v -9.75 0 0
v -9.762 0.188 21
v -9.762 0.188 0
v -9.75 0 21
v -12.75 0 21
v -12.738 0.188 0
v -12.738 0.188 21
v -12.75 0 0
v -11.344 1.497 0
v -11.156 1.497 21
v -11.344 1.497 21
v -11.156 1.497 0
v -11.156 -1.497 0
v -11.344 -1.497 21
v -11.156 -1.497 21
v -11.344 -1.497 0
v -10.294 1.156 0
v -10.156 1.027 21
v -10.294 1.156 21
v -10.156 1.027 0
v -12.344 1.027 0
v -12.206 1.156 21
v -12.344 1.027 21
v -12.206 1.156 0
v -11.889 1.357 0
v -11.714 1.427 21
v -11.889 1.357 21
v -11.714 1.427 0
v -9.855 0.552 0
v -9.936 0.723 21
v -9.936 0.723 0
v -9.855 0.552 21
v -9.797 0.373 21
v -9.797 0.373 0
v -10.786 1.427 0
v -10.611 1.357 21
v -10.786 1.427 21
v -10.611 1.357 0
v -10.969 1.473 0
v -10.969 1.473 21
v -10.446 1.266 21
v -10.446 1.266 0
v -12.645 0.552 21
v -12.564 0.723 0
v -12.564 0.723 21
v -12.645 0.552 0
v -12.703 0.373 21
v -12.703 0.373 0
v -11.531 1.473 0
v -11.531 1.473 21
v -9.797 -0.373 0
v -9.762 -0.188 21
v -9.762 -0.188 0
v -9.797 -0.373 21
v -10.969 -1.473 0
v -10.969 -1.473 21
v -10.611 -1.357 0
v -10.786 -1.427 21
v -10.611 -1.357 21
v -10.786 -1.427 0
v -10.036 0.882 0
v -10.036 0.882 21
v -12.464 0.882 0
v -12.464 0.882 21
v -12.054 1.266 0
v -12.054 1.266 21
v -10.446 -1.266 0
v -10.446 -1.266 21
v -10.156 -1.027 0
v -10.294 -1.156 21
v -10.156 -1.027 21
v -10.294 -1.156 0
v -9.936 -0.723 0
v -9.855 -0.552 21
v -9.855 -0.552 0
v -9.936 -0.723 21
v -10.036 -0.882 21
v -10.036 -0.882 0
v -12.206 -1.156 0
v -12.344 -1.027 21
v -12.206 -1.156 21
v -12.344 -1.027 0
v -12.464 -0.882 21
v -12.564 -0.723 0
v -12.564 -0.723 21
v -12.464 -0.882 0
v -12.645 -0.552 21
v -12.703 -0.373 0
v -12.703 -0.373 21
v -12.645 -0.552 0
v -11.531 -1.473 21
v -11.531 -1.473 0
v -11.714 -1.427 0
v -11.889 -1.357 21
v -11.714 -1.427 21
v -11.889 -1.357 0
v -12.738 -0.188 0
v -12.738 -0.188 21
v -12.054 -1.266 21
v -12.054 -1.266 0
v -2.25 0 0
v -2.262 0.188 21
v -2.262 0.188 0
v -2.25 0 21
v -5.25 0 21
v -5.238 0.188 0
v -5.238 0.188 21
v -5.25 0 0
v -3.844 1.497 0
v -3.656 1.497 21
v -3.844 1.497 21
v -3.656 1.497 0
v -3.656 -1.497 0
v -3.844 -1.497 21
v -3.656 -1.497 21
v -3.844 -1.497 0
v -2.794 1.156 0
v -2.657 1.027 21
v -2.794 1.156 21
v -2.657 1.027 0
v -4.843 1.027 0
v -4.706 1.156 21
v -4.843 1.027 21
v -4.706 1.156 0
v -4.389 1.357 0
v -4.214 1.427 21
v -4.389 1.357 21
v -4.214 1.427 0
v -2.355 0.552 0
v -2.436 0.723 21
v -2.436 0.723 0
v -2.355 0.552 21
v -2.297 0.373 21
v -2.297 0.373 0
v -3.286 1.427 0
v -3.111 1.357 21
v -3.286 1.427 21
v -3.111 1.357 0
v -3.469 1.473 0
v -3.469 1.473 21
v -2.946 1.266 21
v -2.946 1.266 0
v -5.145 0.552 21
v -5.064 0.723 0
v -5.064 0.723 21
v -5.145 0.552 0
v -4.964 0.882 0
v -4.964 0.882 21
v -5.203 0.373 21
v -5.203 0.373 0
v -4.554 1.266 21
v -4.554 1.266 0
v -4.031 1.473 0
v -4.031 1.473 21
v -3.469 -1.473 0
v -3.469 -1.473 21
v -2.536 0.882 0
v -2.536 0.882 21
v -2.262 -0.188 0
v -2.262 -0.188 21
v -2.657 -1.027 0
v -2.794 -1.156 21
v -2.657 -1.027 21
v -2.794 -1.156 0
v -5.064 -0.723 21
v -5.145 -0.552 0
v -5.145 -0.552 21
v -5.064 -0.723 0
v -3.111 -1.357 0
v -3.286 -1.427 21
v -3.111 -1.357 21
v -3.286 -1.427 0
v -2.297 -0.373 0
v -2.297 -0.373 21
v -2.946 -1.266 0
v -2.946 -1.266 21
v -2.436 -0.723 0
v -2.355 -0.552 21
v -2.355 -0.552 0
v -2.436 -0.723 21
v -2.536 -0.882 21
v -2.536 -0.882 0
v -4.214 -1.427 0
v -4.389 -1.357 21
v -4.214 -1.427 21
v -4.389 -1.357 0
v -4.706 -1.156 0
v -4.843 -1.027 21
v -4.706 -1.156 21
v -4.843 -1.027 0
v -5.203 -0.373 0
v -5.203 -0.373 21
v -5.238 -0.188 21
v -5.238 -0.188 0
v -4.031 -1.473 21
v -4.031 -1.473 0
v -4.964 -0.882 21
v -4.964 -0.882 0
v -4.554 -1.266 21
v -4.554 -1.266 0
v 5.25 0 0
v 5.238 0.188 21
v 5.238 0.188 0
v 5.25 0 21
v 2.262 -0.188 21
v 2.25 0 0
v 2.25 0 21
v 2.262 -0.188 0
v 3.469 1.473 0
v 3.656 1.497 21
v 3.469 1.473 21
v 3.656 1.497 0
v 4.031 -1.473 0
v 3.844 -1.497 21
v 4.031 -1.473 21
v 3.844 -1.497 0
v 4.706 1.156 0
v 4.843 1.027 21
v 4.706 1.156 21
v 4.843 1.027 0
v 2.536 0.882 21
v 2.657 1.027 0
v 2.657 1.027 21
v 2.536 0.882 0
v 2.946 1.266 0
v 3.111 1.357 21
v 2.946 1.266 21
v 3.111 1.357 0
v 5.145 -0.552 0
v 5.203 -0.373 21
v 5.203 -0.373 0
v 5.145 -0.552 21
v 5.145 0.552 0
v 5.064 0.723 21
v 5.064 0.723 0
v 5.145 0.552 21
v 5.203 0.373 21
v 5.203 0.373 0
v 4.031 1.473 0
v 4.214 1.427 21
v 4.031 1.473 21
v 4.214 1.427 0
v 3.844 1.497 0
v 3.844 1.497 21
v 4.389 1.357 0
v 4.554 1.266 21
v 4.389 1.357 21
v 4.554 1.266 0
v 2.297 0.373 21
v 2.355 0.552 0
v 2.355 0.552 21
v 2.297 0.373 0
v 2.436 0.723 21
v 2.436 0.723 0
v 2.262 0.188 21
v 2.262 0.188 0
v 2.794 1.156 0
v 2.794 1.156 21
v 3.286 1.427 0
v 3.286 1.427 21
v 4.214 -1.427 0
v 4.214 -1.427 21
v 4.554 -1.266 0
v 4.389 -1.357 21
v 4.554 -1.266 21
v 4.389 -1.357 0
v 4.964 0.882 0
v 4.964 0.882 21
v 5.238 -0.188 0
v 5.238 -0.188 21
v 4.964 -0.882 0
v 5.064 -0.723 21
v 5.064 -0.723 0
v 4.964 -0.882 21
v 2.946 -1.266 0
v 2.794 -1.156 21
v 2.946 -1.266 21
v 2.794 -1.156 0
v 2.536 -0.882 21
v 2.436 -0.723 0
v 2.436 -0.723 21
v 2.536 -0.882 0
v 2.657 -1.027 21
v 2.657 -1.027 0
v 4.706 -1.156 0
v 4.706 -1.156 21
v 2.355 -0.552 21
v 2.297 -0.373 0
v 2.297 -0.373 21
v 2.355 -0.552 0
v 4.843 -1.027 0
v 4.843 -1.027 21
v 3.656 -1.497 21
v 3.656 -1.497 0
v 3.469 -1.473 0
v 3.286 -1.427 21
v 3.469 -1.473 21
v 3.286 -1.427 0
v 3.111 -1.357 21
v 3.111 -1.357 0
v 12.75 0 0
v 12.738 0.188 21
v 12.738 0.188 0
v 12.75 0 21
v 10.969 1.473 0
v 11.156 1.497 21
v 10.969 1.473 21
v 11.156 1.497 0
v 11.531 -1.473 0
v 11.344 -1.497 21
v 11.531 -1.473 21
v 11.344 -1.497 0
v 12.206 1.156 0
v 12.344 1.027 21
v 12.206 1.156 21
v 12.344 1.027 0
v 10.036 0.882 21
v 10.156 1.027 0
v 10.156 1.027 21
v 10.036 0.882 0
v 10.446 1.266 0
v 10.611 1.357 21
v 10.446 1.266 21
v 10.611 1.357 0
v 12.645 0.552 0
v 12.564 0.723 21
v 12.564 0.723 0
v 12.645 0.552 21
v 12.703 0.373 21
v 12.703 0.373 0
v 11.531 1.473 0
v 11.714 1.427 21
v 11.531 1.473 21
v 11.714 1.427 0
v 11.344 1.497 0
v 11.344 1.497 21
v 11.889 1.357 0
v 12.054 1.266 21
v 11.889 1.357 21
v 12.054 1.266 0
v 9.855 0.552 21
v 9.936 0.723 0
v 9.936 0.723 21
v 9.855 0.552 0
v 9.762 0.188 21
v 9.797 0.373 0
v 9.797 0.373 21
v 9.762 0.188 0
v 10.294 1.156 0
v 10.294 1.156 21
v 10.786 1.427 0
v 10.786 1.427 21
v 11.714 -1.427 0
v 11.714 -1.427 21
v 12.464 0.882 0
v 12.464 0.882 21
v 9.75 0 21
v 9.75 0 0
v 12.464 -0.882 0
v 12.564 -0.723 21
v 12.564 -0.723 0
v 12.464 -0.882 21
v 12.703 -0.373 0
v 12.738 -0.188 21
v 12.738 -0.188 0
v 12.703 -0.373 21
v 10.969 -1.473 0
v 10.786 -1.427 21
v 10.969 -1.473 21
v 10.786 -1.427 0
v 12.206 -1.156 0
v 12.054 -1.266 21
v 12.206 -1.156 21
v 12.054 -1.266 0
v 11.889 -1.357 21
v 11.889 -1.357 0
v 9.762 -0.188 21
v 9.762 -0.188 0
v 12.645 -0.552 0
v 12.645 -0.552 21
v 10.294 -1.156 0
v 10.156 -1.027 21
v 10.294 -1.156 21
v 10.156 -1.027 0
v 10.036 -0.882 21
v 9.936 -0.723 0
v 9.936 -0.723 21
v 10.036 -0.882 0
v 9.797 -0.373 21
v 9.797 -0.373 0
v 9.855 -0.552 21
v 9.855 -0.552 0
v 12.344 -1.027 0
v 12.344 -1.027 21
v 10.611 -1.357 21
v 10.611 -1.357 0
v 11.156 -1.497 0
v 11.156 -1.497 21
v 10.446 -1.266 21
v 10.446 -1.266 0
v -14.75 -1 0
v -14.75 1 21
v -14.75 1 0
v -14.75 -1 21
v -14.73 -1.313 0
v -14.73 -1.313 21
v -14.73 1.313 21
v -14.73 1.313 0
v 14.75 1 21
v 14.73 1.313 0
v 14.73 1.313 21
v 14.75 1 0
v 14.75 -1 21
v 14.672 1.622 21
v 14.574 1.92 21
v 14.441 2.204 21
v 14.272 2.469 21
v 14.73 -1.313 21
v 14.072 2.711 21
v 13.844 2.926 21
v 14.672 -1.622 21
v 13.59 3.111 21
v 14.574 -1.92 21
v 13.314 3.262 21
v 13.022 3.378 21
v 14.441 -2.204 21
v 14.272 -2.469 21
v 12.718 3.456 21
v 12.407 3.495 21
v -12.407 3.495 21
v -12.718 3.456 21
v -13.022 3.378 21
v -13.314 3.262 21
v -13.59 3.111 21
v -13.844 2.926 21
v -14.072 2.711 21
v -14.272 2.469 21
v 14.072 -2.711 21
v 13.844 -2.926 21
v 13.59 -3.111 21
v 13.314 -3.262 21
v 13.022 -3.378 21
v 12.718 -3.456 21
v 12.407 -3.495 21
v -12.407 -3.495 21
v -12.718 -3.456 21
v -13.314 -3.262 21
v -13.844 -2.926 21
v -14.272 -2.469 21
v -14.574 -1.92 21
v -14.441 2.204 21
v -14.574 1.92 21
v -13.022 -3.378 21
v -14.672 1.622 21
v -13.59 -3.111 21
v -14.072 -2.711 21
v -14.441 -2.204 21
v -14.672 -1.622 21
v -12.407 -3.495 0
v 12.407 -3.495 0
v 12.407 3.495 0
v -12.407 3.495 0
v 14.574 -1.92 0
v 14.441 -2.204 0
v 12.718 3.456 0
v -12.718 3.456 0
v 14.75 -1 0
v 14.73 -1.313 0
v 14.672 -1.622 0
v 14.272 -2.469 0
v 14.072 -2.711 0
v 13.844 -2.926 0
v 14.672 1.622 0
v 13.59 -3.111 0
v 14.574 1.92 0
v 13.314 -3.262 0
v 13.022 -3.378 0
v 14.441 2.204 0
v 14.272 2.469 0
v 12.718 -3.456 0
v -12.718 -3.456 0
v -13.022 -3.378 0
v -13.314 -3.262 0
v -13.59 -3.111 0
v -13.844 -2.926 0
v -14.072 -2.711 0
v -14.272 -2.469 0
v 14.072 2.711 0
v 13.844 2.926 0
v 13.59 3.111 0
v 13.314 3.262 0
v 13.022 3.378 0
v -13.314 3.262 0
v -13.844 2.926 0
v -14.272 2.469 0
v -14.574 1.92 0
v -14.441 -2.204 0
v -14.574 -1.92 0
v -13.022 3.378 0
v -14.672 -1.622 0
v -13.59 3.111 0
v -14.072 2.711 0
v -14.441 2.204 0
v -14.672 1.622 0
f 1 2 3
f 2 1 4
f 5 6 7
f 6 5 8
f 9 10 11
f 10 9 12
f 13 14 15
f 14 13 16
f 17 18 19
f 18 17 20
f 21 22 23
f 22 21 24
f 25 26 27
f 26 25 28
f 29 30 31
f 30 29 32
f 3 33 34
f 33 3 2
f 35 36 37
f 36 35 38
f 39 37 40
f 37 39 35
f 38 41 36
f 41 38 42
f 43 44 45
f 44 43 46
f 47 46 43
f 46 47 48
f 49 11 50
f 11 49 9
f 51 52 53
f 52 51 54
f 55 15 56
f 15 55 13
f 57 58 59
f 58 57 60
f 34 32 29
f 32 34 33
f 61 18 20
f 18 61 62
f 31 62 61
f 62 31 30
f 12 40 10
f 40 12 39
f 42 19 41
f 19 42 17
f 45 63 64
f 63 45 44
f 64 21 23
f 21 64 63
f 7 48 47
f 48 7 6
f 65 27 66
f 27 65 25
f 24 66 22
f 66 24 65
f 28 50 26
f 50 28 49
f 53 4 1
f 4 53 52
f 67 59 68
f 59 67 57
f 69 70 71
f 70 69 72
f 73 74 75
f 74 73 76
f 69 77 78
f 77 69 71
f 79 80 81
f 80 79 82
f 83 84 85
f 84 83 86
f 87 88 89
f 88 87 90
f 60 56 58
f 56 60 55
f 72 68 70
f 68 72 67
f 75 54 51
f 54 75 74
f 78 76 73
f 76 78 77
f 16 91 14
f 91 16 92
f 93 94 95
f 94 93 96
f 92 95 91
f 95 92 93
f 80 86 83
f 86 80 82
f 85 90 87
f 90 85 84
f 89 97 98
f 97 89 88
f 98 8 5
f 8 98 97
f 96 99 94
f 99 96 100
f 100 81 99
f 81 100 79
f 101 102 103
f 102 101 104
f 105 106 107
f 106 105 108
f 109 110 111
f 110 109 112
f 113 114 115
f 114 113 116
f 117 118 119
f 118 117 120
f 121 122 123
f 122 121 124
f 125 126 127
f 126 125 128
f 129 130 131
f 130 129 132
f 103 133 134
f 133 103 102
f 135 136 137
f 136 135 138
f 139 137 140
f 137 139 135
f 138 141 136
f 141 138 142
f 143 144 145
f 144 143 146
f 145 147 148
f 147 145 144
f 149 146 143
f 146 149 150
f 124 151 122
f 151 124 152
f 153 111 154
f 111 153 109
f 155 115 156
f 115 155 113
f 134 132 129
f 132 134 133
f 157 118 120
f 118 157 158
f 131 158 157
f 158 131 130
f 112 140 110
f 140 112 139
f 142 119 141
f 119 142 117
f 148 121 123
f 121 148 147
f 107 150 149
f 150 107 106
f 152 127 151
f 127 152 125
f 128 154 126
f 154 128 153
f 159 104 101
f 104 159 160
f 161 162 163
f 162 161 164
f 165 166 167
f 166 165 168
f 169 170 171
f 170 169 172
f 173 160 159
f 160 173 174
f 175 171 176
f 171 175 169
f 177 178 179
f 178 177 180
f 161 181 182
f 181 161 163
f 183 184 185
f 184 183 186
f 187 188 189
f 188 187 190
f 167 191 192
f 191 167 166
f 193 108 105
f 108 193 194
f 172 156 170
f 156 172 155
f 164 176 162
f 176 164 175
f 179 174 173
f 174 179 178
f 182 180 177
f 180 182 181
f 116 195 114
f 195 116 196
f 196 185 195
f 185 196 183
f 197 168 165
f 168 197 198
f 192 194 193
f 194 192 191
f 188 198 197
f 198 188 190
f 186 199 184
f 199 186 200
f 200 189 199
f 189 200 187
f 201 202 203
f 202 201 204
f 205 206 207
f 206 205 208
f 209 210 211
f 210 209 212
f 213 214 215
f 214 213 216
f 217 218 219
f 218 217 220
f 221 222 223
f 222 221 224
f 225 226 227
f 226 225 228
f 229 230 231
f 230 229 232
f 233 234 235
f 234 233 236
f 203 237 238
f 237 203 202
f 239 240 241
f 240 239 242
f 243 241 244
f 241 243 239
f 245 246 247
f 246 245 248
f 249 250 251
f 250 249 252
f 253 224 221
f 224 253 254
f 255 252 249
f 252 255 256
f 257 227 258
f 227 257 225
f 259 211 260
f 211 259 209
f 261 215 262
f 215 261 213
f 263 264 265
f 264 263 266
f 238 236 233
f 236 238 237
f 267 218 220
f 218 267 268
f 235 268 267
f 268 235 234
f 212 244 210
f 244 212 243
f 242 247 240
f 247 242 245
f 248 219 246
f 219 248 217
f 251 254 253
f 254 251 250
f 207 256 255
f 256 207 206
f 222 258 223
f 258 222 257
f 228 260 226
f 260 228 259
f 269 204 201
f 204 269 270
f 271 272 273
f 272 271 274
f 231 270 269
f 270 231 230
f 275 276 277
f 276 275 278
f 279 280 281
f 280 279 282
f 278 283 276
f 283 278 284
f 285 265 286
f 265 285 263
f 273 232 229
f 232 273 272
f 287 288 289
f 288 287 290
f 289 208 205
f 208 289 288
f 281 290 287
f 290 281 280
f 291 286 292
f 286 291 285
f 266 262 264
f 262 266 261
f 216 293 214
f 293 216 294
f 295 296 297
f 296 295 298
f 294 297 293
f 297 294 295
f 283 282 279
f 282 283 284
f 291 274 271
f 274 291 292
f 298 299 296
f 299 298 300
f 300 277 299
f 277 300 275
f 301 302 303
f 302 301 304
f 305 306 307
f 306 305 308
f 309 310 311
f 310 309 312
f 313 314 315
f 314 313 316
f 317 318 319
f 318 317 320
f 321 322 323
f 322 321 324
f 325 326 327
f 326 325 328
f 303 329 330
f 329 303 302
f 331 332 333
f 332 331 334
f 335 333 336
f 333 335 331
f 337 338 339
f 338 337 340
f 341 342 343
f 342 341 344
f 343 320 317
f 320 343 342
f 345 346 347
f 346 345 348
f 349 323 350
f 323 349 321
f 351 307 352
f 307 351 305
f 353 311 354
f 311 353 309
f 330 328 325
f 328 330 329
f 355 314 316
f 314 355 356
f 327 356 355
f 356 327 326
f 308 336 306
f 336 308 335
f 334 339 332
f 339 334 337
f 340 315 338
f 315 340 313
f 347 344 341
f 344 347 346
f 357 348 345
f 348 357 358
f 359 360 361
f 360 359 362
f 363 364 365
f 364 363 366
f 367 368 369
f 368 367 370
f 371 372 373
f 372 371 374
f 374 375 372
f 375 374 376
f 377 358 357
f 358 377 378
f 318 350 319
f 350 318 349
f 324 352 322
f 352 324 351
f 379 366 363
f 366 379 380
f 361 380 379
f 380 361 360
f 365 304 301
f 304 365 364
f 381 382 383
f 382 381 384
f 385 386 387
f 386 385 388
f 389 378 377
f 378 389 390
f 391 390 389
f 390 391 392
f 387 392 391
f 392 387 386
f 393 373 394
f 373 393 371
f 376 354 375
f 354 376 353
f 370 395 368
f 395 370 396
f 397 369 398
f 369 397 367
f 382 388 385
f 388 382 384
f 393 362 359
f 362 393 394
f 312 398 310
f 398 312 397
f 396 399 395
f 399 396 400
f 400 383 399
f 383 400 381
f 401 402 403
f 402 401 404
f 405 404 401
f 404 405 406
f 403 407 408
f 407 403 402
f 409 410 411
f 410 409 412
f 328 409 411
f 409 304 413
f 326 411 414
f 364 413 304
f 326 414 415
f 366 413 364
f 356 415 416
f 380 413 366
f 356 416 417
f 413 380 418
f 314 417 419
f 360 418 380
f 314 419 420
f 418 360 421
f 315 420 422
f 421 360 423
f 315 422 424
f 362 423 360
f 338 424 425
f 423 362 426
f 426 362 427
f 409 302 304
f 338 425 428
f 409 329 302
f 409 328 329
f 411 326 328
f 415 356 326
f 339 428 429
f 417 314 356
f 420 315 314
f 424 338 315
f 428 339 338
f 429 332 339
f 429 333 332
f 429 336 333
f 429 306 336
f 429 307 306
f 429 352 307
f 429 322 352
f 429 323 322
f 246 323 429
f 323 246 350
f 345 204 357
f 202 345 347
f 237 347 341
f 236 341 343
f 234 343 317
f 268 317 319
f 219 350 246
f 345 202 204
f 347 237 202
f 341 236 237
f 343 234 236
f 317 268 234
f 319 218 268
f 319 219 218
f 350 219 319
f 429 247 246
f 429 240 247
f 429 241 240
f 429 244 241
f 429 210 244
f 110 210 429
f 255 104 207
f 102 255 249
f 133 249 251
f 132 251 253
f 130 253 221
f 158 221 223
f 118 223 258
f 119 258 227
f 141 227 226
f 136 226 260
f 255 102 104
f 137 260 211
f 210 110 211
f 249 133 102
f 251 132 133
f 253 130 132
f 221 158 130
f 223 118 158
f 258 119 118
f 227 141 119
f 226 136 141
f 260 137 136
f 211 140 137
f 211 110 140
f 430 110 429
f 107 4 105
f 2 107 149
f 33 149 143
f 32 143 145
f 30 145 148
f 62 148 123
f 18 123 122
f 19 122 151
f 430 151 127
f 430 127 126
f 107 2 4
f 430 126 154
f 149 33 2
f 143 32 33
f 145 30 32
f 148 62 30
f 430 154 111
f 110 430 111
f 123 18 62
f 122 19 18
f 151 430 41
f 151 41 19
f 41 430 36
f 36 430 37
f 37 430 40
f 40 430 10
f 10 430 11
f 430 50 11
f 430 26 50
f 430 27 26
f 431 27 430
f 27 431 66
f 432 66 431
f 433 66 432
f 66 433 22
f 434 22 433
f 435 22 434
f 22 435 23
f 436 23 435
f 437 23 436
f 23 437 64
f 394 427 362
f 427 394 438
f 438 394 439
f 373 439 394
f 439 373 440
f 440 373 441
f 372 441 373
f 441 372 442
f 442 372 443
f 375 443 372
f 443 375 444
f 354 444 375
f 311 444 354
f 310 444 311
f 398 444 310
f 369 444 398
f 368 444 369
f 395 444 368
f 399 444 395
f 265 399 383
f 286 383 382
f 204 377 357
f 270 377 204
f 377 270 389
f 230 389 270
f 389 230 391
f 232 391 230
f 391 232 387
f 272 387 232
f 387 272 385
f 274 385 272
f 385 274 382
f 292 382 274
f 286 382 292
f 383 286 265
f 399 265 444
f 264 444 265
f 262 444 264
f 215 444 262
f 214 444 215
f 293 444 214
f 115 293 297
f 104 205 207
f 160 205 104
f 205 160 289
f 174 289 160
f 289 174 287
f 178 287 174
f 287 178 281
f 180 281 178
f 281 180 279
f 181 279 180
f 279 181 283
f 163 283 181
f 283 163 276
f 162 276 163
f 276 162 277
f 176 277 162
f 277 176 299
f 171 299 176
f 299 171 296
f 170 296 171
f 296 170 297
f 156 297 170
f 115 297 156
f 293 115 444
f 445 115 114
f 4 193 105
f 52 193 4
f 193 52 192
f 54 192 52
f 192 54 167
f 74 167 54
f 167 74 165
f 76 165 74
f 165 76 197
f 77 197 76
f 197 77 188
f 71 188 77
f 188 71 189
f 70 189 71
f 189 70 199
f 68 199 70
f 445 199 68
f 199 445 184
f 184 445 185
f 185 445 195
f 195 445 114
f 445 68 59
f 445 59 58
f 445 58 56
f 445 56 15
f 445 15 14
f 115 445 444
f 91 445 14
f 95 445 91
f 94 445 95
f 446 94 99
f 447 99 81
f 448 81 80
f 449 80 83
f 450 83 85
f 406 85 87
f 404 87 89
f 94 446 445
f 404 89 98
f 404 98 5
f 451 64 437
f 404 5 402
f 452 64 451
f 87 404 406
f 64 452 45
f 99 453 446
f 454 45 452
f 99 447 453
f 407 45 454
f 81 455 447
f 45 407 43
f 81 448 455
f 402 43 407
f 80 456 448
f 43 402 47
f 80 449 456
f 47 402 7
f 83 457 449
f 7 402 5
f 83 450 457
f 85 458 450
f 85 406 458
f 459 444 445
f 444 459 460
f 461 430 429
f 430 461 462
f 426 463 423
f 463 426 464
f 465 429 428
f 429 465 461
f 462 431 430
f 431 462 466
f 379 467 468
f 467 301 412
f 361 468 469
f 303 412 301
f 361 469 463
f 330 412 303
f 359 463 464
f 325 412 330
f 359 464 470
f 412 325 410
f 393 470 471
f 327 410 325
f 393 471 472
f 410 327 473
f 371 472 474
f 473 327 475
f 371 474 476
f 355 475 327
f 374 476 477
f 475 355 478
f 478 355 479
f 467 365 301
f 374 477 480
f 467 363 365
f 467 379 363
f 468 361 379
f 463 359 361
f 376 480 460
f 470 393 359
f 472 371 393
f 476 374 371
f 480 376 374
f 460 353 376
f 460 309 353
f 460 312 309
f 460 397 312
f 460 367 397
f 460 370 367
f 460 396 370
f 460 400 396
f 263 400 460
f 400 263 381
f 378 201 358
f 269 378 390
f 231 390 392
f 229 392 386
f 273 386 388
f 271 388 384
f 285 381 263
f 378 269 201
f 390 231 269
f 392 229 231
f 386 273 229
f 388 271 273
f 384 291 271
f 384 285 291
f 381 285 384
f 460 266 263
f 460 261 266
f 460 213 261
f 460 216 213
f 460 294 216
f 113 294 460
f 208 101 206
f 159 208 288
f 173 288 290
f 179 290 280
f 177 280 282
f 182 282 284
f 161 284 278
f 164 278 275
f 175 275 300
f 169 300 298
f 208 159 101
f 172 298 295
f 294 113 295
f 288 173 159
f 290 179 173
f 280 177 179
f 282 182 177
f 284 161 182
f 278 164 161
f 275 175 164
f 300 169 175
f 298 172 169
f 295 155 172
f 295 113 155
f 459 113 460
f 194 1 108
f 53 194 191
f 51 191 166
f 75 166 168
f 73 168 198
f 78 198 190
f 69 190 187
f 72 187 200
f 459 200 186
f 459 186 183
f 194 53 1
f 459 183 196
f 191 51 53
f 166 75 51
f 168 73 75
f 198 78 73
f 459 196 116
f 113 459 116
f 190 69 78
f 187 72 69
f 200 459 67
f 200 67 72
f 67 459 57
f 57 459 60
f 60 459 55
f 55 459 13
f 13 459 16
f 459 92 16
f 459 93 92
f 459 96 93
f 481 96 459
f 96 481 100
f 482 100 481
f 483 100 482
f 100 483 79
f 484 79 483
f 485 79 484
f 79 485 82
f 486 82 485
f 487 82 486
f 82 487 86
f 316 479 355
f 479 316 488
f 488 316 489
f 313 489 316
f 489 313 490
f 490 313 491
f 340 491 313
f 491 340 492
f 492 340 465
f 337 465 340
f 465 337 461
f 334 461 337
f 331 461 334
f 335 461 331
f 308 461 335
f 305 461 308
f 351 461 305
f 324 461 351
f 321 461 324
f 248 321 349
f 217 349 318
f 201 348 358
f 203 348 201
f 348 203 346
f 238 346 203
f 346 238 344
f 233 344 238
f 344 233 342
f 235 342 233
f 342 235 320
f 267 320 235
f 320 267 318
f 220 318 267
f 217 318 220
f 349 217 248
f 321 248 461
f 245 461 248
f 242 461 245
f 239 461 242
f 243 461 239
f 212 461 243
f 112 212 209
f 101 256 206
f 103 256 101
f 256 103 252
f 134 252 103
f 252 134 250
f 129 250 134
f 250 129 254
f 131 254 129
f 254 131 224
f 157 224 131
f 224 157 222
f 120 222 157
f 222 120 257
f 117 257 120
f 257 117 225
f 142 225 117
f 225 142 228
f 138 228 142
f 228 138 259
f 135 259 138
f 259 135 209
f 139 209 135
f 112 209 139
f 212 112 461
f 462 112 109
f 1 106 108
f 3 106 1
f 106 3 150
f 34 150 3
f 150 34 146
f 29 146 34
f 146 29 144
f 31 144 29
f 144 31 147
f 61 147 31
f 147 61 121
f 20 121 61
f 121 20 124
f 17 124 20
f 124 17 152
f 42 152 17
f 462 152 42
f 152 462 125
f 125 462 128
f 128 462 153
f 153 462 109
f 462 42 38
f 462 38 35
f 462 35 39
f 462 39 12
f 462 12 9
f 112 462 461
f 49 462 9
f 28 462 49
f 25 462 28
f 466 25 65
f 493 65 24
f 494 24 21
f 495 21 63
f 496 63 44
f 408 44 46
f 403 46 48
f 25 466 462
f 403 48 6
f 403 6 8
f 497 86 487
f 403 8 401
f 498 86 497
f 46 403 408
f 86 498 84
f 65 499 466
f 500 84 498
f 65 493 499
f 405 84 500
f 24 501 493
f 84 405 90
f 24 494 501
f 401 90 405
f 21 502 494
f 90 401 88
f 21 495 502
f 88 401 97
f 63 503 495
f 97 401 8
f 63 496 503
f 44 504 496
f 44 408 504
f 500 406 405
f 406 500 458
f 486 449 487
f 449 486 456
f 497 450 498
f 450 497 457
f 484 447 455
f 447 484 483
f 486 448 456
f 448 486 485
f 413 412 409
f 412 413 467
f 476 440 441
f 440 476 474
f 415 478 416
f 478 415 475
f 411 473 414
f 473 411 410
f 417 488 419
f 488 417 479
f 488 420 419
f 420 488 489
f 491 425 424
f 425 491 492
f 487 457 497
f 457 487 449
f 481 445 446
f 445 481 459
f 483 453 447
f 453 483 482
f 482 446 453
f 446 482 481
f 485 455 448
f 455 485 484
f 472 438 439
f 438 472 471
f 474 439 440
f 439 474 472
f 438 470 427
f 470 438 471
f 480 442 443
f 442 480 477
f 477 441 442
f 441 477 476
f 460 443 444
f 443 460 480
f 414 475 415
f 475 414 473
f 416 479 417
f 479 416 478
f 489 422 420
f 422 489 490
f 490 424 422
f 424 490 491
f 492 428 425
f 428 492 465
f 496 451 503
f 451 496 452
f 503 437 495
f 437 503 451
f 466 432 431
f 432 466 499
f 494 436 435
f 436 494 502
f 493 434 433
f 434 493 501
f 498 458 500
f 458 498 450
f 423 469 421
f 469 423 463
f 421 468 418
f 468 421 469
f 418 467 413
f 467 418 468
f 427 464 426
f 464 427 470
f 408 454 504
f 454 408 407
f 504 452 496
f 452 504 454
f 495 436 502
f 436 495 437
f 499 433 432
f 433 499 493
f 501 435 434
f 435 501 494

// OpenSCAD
$fn = 50;


difference() {
	union() {
		translate(v = [0, 0, 0]) {
			rotate(a = [0, 0, 0]) {
				hull() {
					translate(v = [-12.2500000000, 1.0000000000, 0]) {
						rotate(a = [0, 0, 0]) {
							translate(v = [0, 0, 0]) {
								rotate(a = [0, 0, 0]) {
									cylinder(h = 21, r = 2.5000000000);
								}
							}
						}
					}
					translate(v = [12.2500000000, 1.0000000000, 0]) {
						rotate(a = [0, 0, 0]) {
							translate(v = [0, 0, 0]) {
								rotate(a = [0, 0, 0]) {
									cylinder(h = 21, r = 2.5000000000);
								}
							}
						}
					}
					translate(v = [-12.2500000000, -1.0000000000, 0]) {
						rotate(a = [0, 0, 0]) {
							translate(v = [0, 0, 0]) {
								rotate(a = [0, 0, 0]) {
									cylinder(h = 21, r = 2.5000000000);
								}
							}
						}
					}
					translate(v = [12.2500000000, -1.0000000000, 0]) {
						rotate(a = [0, 0, 0]) {
							translate(v = [0, 0, 0]) {
								rotate(a = [0, 0, 0]) {
									cylinder(h = 21, r = 2.5000000000);
								}
							}
						}
					}
				}
			}
		}
	}
	union() {
		translate(v = [-11.2500000000, 0.0000000000, 0]) {
			rotate(a = [0, 0, 0]) {
				translate(v = [0, 0, -50]) {
					rotate(a = [0, 0, 0]) {
						cylinder(h = 100, r = 1.5000000000);
					}
				}
			}
		}
		translate(v = [-3.7500000000, 0.0000000000, 0]) {
			rotate(a = [0, 0, 0]) {
				translate(v = [0, 0, -50]) {
					rotate(a = [0, 0, 0]) {
						cylinder(h = 100, r = 1.5000000000);
					}
				}
			}
		}
		translate(v = [3.7500000000, 0.0000000000, 0]) {
			rotate(a = [0, 0, 0]) {
				translate(v = [0, 0, -50]) {
					rotate(a = [0, 0, 0]) {
						cylinder(h = 100, r = 1.5000000000);
					}
				}
			}
		}
		translate(v = [11.2500000000, 0.0000000000, 0]) {
			rotate(a = [0, 0, 0]) {
				translate(v = [0, 0, -50]) {
					rotate(a = [0, 0, 0]) {
						cylinder(h = 100, r = 1.5000000000);
					}
				}
			}
		}
	}
}
